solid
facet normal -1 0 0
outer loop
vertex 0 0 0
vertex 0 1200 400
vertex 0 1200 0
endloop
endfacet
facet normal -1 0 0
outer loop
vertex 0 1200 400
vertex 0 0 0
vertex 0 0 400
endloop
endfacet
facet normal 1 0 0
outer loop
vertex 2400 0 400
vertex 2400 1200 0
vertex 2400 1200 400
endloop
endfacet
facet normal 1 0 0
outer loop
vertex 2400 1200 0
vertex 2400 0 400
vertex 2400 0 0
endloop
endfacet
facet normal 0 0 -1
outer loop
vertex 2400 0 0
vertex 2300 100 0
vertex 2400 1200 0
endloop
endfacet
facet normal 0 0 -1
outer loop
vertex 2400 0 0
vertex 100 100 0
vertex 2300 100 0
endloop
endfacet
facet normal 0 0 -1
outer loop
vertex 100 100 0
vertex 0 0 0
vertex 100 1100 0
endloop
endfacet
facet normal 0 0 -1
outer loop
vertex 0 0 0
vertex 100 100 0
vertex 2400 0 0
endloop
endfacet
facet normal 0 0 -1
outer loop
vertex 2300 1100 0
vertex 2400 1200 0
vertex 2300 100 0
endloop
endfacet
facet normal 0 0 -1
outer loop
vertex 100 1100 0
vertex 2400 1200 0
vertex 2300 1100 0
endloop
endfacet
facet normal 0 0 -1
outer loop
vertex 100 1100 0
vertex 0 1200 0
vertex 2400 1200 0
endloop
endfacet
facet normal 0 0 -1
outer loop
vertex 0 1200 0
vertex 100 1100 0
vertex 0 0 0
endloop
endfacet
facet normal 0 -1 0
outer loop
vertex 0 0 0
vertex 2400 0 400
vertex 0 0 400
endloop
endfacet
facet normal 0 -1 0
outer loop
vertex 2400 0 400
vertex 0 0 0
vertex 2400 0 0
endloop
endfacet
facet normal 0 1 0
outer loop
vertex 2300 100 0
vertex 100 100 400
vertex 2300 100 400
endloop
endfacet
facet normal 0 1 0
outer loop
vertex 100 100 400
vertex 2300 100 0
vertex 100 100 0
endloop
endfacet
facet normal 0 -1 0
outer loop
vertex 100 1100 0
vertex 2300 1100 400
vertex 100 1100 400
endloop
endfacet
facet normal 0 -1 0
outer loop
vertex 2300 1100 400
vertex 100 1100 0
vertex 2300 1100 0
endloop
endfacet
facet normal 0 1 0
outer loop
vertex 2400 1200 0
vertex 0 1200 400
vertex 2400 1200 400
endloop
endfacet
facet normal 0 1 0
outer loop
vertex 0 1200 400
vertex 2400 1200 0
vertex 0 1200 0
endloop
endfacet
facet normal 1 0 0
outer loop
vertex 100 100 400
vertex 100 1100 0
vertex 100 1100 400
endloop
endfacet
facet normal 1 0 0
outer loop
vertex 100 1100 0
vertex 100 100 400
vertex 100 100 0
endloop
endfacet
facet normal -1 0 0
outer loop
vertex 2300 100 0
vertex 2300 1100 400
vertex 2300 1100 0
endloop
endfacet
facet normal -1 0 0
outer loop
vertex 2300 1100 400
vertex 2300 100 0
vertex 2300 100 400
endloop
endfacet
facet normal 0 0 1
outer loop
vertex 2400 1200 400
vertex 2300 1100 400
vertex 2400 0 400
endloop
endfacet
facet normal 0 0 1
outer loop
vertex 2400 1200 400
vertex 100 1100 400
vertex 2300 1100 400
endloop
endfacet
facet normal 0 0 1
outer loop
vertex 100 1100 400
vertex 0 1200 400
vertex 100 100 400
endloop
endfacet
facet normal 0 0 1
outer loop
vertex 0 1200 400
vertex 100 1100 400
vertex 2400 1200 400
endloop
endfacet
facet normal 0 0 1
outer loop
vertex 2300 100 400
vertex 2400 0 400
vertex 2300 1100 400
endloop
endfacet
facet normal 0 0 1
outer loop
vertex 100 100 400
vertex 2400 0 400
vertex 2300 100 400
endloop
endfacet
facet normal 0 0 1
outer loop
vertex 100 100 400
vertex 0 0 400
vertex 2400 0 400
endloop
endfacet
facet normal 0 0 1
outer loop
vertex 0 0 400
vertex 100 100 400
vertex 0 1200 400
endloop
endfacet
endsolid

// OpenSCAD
// Generated from plan.json; millimetres. Not a structural design.
// Open in OpenSCAD. Increase explode_mm to inspect courses.
explode_mm = 0;
$fn = 24;
show_fixing_paths = false;

// front-01-C1-S
translate([0, 0, 0+0*explode_mm])
  color([0.70,0.52,0.33]) cube([2400, 100, 200]);
// front-01-C1-N
translate([0, 1100, 0+0*explode_mm])
  color([0.70,0.52,0.33]) cube([2400, 100, 200]);
// front-01-C1-W
translate([0, 100, 0+0*explode_mm])
  color([0.70,0.52,0.33]) cube([100, 1000, 200]);
// front-01-C1-E
translate([2300, 100, 0+0*explode_mm])
  color([0.70,0.52,0.33]) cube([100, 1000, 200]);
// front-01-C2-S
translate([100, 0, 200+1*explode_mm])
  color([0.70,0.52,0.33]) cube([2200, 100, 200]);
// front-01-C2-N
translate([100, 1100, 200+1*explode_mm])
  color([0.70,0.52,0.33]) cube([2200, 100, 200]);
// front-01-C2-W
translate([0, 0, 200+1*explode_mm])
  color([0.70,0.52,0.33]) cube([100, 1200, 200]);
// front-01-C2-E
translate([2300, 0, 200+1*explode_mm])
  color([0.70,0.52,0.33]) cube([100, 1200, 200]);
if (show_fixing_paths) translate([50.0, 1200, 50.0+0*explode_mm]) rotate([90,0,0]) color([0.8,0.1,0.1]) cylinder(d=7, h=150);
if (show_fixing_paths) translate([50.0, 1200, 150.0+0*explode_mm]) rotate([90,0,0]) color([0.8,0.1,0.1]) cylinder(d=7, h=150);
if (show_fixing_paths) translate([2350.0, 1200, 50.0+0*explode_mm]) rotate([90,0,0]) color([0.8,0.1,0.1]) cylinder(d=7, h=150);
if (show_fixing_paths) translate([2350.0, 1200, 150.0+0*explode_mm]) rotate([90,0,0]) color([0.8,0.1,0.1]) cylinder(d=7, h=150);
if (show_fixing_paths) translate([50.0, 0, 50.0+0*explode_mm]) rotate([-90,0,0]) color([0.8,0.1,0.1]) cylinder(d=7, h=150);
if (show_fixing_paths) translate([50.0, 0, 150.0+0*explode_mm]) rotate([-90,0,0]) color([0.8,0.1,0.1]) cylinder(d=7, h=150);
if (show_fixing_paths) translate([2350.0, 0, 50.0+0*explode_mm]) rotate([-90,0,0]) color([0.8,0.1,0.1]) cylinder(d=7, h=150);
if (show_fixing_paths) translate([2350.0, 0, 150.0+0*explode_mm]) rotate([-90,0,0]) color([0.8,0.1,0.1]) cylinder(d=7, h=150);
if (show_fixing_paths) translate([2400, 50.0, 250.0+1*explode_mm]) rotate([0,-90,0]) color([0.8,0.1,0.1]) cylinder(d=7, h=150);
if (show_fixing_paths) translate([2400, 50.0, 350.0+1*explode_mm]) rotate([0,-90,0]) color([0.8,0.1,0.1]) cylinder(d=7, h=150);
if (show_fixing_paths) translate([2400, 1150.0, 250.0+1*explode_mm]) rotate([0,-90,0]) color([0.8,0.1,0.1]) cylinder(d=7, h=150);
if (show_fixing_paths) translate([2400, 1150.0, 350.0+1*explode_mm]) rotate([0,-90,0]) color([0.8,0.1,0.1]) cylinder(d=7, h=150);
if (show_fixing_paths) translate([2350.0, 200.0, 400+1*explode_mm]) rotate([180,0,0]) color([0.8,0.1,0.1]) cylinder(d=7, h=250);
if (show_fixing_paths) translate([2350.0, 600.0, 400+1*explode_mm]) rotate([180,0,0]) color([0.8,0.1,0.1]) cylinder(d=7, h=250);
if (show_fixing_paths) translate([2350.0, 1000.0, 400+1*explode_mm]) rotate([180,0,0]) color([0.8,0.1,0.1]) cylinder(d=7, h=250);
if (show_fixing_paths) translate([300.0, 1150.0, 400+1*explode_mm]) rotate([180,0,0]) color([0.8,0.1,0.1]) cylinder(d=7, h=250);
if (show_fixing_paths) translate([900.0, 1150.0, 400+1*explode_mm]) rotate([180,0,0]) color([0.8,0.1,0.1]) cylinder(d=7, h=250);
if (show_fixing_paths) translate([1500.0, 1150.0, 400+1*explode_mm]) rotate([180,0,0]) color([0.8,0.1,0.1]) cylinder(d=7, h=250);
if (show_fixing_paths) translate([2100.0, 1150.0, 400+1*explode_mm]) rotate([180,0,0]) color([0.8,0.1,0.1]) cylinder(d=7, h=250);
if (show_fixing_paths) translate([300.0, 50.0, 400+1*explode_mm]) rotate([180,0,0]) color([0.8,0.1,0.1]) cylinder(d=7, h=250);
if (show_fixing_paths) translate([900.0, 50.0, 400+1*explode_mm]) rotate([180,0,0]) color([0.8,0.1,0.1]) cylinder(d=7, h=250);
if (show_fixing_paths) translate([1500.0, 50.0, 400+1*explode_mm]) rotate([180,0,0]) color([0.8,0.1,0.1]) cylinder(d=7, h=250);
if (show_fixing_paths) translate([2100.0, 50.0, 400+1*explode_mm]) rotate([180,0,0]) color([0.8,0.1,0.1]) cylinder(d=7, h=250);
if (show_fixing_paths) translate([0, 50.0, 250.0+1*explode_mm]) rotate([0,90,0]) color([0.8,0.1,0.1]) cylinder(d=7, h=150);
if (show_fixing_paths) translate([0, 50.0, 350.0+1*explode_mm]) rotate([0,90,0]) color([0.8,0.1,0.1]) cylinder(d=7, h=150);
if (show_fixing_paths) translate([0, 1150.0, 250.0+1*explode_mm]) rotate([0,90,0]) color([0.8,0.1,0.1]) cylinder(d=7, h=150);
if (show_fixing_paths) translate([0, 1150.0, 350.0+1*explode_mm]) rotate([0,90,0]) color([0.8,0.1,0.1]) cylinder(d=7, h=150);
if (show_fixing_paths) translate([50.0, 200.0, 400+1*explode_mm]) rotate([180,0,0]) color([0.8,0.1,0.1]) cylinder(d=7, h=250);
if (show_fixing_paths) translate([50.0, 600.0, 400+1*explode_mm]) rotate([180,0,0]) color([0.8,0.1,0.1]) cylinder(d=7, h=250);
if (show_fixing_paths) translate([50.0, 1000.0, 400+1*explode_mm]) rotate([180,0,0]) color([0.8,0.1,0.1]) cylinder(d=7, h=250);
